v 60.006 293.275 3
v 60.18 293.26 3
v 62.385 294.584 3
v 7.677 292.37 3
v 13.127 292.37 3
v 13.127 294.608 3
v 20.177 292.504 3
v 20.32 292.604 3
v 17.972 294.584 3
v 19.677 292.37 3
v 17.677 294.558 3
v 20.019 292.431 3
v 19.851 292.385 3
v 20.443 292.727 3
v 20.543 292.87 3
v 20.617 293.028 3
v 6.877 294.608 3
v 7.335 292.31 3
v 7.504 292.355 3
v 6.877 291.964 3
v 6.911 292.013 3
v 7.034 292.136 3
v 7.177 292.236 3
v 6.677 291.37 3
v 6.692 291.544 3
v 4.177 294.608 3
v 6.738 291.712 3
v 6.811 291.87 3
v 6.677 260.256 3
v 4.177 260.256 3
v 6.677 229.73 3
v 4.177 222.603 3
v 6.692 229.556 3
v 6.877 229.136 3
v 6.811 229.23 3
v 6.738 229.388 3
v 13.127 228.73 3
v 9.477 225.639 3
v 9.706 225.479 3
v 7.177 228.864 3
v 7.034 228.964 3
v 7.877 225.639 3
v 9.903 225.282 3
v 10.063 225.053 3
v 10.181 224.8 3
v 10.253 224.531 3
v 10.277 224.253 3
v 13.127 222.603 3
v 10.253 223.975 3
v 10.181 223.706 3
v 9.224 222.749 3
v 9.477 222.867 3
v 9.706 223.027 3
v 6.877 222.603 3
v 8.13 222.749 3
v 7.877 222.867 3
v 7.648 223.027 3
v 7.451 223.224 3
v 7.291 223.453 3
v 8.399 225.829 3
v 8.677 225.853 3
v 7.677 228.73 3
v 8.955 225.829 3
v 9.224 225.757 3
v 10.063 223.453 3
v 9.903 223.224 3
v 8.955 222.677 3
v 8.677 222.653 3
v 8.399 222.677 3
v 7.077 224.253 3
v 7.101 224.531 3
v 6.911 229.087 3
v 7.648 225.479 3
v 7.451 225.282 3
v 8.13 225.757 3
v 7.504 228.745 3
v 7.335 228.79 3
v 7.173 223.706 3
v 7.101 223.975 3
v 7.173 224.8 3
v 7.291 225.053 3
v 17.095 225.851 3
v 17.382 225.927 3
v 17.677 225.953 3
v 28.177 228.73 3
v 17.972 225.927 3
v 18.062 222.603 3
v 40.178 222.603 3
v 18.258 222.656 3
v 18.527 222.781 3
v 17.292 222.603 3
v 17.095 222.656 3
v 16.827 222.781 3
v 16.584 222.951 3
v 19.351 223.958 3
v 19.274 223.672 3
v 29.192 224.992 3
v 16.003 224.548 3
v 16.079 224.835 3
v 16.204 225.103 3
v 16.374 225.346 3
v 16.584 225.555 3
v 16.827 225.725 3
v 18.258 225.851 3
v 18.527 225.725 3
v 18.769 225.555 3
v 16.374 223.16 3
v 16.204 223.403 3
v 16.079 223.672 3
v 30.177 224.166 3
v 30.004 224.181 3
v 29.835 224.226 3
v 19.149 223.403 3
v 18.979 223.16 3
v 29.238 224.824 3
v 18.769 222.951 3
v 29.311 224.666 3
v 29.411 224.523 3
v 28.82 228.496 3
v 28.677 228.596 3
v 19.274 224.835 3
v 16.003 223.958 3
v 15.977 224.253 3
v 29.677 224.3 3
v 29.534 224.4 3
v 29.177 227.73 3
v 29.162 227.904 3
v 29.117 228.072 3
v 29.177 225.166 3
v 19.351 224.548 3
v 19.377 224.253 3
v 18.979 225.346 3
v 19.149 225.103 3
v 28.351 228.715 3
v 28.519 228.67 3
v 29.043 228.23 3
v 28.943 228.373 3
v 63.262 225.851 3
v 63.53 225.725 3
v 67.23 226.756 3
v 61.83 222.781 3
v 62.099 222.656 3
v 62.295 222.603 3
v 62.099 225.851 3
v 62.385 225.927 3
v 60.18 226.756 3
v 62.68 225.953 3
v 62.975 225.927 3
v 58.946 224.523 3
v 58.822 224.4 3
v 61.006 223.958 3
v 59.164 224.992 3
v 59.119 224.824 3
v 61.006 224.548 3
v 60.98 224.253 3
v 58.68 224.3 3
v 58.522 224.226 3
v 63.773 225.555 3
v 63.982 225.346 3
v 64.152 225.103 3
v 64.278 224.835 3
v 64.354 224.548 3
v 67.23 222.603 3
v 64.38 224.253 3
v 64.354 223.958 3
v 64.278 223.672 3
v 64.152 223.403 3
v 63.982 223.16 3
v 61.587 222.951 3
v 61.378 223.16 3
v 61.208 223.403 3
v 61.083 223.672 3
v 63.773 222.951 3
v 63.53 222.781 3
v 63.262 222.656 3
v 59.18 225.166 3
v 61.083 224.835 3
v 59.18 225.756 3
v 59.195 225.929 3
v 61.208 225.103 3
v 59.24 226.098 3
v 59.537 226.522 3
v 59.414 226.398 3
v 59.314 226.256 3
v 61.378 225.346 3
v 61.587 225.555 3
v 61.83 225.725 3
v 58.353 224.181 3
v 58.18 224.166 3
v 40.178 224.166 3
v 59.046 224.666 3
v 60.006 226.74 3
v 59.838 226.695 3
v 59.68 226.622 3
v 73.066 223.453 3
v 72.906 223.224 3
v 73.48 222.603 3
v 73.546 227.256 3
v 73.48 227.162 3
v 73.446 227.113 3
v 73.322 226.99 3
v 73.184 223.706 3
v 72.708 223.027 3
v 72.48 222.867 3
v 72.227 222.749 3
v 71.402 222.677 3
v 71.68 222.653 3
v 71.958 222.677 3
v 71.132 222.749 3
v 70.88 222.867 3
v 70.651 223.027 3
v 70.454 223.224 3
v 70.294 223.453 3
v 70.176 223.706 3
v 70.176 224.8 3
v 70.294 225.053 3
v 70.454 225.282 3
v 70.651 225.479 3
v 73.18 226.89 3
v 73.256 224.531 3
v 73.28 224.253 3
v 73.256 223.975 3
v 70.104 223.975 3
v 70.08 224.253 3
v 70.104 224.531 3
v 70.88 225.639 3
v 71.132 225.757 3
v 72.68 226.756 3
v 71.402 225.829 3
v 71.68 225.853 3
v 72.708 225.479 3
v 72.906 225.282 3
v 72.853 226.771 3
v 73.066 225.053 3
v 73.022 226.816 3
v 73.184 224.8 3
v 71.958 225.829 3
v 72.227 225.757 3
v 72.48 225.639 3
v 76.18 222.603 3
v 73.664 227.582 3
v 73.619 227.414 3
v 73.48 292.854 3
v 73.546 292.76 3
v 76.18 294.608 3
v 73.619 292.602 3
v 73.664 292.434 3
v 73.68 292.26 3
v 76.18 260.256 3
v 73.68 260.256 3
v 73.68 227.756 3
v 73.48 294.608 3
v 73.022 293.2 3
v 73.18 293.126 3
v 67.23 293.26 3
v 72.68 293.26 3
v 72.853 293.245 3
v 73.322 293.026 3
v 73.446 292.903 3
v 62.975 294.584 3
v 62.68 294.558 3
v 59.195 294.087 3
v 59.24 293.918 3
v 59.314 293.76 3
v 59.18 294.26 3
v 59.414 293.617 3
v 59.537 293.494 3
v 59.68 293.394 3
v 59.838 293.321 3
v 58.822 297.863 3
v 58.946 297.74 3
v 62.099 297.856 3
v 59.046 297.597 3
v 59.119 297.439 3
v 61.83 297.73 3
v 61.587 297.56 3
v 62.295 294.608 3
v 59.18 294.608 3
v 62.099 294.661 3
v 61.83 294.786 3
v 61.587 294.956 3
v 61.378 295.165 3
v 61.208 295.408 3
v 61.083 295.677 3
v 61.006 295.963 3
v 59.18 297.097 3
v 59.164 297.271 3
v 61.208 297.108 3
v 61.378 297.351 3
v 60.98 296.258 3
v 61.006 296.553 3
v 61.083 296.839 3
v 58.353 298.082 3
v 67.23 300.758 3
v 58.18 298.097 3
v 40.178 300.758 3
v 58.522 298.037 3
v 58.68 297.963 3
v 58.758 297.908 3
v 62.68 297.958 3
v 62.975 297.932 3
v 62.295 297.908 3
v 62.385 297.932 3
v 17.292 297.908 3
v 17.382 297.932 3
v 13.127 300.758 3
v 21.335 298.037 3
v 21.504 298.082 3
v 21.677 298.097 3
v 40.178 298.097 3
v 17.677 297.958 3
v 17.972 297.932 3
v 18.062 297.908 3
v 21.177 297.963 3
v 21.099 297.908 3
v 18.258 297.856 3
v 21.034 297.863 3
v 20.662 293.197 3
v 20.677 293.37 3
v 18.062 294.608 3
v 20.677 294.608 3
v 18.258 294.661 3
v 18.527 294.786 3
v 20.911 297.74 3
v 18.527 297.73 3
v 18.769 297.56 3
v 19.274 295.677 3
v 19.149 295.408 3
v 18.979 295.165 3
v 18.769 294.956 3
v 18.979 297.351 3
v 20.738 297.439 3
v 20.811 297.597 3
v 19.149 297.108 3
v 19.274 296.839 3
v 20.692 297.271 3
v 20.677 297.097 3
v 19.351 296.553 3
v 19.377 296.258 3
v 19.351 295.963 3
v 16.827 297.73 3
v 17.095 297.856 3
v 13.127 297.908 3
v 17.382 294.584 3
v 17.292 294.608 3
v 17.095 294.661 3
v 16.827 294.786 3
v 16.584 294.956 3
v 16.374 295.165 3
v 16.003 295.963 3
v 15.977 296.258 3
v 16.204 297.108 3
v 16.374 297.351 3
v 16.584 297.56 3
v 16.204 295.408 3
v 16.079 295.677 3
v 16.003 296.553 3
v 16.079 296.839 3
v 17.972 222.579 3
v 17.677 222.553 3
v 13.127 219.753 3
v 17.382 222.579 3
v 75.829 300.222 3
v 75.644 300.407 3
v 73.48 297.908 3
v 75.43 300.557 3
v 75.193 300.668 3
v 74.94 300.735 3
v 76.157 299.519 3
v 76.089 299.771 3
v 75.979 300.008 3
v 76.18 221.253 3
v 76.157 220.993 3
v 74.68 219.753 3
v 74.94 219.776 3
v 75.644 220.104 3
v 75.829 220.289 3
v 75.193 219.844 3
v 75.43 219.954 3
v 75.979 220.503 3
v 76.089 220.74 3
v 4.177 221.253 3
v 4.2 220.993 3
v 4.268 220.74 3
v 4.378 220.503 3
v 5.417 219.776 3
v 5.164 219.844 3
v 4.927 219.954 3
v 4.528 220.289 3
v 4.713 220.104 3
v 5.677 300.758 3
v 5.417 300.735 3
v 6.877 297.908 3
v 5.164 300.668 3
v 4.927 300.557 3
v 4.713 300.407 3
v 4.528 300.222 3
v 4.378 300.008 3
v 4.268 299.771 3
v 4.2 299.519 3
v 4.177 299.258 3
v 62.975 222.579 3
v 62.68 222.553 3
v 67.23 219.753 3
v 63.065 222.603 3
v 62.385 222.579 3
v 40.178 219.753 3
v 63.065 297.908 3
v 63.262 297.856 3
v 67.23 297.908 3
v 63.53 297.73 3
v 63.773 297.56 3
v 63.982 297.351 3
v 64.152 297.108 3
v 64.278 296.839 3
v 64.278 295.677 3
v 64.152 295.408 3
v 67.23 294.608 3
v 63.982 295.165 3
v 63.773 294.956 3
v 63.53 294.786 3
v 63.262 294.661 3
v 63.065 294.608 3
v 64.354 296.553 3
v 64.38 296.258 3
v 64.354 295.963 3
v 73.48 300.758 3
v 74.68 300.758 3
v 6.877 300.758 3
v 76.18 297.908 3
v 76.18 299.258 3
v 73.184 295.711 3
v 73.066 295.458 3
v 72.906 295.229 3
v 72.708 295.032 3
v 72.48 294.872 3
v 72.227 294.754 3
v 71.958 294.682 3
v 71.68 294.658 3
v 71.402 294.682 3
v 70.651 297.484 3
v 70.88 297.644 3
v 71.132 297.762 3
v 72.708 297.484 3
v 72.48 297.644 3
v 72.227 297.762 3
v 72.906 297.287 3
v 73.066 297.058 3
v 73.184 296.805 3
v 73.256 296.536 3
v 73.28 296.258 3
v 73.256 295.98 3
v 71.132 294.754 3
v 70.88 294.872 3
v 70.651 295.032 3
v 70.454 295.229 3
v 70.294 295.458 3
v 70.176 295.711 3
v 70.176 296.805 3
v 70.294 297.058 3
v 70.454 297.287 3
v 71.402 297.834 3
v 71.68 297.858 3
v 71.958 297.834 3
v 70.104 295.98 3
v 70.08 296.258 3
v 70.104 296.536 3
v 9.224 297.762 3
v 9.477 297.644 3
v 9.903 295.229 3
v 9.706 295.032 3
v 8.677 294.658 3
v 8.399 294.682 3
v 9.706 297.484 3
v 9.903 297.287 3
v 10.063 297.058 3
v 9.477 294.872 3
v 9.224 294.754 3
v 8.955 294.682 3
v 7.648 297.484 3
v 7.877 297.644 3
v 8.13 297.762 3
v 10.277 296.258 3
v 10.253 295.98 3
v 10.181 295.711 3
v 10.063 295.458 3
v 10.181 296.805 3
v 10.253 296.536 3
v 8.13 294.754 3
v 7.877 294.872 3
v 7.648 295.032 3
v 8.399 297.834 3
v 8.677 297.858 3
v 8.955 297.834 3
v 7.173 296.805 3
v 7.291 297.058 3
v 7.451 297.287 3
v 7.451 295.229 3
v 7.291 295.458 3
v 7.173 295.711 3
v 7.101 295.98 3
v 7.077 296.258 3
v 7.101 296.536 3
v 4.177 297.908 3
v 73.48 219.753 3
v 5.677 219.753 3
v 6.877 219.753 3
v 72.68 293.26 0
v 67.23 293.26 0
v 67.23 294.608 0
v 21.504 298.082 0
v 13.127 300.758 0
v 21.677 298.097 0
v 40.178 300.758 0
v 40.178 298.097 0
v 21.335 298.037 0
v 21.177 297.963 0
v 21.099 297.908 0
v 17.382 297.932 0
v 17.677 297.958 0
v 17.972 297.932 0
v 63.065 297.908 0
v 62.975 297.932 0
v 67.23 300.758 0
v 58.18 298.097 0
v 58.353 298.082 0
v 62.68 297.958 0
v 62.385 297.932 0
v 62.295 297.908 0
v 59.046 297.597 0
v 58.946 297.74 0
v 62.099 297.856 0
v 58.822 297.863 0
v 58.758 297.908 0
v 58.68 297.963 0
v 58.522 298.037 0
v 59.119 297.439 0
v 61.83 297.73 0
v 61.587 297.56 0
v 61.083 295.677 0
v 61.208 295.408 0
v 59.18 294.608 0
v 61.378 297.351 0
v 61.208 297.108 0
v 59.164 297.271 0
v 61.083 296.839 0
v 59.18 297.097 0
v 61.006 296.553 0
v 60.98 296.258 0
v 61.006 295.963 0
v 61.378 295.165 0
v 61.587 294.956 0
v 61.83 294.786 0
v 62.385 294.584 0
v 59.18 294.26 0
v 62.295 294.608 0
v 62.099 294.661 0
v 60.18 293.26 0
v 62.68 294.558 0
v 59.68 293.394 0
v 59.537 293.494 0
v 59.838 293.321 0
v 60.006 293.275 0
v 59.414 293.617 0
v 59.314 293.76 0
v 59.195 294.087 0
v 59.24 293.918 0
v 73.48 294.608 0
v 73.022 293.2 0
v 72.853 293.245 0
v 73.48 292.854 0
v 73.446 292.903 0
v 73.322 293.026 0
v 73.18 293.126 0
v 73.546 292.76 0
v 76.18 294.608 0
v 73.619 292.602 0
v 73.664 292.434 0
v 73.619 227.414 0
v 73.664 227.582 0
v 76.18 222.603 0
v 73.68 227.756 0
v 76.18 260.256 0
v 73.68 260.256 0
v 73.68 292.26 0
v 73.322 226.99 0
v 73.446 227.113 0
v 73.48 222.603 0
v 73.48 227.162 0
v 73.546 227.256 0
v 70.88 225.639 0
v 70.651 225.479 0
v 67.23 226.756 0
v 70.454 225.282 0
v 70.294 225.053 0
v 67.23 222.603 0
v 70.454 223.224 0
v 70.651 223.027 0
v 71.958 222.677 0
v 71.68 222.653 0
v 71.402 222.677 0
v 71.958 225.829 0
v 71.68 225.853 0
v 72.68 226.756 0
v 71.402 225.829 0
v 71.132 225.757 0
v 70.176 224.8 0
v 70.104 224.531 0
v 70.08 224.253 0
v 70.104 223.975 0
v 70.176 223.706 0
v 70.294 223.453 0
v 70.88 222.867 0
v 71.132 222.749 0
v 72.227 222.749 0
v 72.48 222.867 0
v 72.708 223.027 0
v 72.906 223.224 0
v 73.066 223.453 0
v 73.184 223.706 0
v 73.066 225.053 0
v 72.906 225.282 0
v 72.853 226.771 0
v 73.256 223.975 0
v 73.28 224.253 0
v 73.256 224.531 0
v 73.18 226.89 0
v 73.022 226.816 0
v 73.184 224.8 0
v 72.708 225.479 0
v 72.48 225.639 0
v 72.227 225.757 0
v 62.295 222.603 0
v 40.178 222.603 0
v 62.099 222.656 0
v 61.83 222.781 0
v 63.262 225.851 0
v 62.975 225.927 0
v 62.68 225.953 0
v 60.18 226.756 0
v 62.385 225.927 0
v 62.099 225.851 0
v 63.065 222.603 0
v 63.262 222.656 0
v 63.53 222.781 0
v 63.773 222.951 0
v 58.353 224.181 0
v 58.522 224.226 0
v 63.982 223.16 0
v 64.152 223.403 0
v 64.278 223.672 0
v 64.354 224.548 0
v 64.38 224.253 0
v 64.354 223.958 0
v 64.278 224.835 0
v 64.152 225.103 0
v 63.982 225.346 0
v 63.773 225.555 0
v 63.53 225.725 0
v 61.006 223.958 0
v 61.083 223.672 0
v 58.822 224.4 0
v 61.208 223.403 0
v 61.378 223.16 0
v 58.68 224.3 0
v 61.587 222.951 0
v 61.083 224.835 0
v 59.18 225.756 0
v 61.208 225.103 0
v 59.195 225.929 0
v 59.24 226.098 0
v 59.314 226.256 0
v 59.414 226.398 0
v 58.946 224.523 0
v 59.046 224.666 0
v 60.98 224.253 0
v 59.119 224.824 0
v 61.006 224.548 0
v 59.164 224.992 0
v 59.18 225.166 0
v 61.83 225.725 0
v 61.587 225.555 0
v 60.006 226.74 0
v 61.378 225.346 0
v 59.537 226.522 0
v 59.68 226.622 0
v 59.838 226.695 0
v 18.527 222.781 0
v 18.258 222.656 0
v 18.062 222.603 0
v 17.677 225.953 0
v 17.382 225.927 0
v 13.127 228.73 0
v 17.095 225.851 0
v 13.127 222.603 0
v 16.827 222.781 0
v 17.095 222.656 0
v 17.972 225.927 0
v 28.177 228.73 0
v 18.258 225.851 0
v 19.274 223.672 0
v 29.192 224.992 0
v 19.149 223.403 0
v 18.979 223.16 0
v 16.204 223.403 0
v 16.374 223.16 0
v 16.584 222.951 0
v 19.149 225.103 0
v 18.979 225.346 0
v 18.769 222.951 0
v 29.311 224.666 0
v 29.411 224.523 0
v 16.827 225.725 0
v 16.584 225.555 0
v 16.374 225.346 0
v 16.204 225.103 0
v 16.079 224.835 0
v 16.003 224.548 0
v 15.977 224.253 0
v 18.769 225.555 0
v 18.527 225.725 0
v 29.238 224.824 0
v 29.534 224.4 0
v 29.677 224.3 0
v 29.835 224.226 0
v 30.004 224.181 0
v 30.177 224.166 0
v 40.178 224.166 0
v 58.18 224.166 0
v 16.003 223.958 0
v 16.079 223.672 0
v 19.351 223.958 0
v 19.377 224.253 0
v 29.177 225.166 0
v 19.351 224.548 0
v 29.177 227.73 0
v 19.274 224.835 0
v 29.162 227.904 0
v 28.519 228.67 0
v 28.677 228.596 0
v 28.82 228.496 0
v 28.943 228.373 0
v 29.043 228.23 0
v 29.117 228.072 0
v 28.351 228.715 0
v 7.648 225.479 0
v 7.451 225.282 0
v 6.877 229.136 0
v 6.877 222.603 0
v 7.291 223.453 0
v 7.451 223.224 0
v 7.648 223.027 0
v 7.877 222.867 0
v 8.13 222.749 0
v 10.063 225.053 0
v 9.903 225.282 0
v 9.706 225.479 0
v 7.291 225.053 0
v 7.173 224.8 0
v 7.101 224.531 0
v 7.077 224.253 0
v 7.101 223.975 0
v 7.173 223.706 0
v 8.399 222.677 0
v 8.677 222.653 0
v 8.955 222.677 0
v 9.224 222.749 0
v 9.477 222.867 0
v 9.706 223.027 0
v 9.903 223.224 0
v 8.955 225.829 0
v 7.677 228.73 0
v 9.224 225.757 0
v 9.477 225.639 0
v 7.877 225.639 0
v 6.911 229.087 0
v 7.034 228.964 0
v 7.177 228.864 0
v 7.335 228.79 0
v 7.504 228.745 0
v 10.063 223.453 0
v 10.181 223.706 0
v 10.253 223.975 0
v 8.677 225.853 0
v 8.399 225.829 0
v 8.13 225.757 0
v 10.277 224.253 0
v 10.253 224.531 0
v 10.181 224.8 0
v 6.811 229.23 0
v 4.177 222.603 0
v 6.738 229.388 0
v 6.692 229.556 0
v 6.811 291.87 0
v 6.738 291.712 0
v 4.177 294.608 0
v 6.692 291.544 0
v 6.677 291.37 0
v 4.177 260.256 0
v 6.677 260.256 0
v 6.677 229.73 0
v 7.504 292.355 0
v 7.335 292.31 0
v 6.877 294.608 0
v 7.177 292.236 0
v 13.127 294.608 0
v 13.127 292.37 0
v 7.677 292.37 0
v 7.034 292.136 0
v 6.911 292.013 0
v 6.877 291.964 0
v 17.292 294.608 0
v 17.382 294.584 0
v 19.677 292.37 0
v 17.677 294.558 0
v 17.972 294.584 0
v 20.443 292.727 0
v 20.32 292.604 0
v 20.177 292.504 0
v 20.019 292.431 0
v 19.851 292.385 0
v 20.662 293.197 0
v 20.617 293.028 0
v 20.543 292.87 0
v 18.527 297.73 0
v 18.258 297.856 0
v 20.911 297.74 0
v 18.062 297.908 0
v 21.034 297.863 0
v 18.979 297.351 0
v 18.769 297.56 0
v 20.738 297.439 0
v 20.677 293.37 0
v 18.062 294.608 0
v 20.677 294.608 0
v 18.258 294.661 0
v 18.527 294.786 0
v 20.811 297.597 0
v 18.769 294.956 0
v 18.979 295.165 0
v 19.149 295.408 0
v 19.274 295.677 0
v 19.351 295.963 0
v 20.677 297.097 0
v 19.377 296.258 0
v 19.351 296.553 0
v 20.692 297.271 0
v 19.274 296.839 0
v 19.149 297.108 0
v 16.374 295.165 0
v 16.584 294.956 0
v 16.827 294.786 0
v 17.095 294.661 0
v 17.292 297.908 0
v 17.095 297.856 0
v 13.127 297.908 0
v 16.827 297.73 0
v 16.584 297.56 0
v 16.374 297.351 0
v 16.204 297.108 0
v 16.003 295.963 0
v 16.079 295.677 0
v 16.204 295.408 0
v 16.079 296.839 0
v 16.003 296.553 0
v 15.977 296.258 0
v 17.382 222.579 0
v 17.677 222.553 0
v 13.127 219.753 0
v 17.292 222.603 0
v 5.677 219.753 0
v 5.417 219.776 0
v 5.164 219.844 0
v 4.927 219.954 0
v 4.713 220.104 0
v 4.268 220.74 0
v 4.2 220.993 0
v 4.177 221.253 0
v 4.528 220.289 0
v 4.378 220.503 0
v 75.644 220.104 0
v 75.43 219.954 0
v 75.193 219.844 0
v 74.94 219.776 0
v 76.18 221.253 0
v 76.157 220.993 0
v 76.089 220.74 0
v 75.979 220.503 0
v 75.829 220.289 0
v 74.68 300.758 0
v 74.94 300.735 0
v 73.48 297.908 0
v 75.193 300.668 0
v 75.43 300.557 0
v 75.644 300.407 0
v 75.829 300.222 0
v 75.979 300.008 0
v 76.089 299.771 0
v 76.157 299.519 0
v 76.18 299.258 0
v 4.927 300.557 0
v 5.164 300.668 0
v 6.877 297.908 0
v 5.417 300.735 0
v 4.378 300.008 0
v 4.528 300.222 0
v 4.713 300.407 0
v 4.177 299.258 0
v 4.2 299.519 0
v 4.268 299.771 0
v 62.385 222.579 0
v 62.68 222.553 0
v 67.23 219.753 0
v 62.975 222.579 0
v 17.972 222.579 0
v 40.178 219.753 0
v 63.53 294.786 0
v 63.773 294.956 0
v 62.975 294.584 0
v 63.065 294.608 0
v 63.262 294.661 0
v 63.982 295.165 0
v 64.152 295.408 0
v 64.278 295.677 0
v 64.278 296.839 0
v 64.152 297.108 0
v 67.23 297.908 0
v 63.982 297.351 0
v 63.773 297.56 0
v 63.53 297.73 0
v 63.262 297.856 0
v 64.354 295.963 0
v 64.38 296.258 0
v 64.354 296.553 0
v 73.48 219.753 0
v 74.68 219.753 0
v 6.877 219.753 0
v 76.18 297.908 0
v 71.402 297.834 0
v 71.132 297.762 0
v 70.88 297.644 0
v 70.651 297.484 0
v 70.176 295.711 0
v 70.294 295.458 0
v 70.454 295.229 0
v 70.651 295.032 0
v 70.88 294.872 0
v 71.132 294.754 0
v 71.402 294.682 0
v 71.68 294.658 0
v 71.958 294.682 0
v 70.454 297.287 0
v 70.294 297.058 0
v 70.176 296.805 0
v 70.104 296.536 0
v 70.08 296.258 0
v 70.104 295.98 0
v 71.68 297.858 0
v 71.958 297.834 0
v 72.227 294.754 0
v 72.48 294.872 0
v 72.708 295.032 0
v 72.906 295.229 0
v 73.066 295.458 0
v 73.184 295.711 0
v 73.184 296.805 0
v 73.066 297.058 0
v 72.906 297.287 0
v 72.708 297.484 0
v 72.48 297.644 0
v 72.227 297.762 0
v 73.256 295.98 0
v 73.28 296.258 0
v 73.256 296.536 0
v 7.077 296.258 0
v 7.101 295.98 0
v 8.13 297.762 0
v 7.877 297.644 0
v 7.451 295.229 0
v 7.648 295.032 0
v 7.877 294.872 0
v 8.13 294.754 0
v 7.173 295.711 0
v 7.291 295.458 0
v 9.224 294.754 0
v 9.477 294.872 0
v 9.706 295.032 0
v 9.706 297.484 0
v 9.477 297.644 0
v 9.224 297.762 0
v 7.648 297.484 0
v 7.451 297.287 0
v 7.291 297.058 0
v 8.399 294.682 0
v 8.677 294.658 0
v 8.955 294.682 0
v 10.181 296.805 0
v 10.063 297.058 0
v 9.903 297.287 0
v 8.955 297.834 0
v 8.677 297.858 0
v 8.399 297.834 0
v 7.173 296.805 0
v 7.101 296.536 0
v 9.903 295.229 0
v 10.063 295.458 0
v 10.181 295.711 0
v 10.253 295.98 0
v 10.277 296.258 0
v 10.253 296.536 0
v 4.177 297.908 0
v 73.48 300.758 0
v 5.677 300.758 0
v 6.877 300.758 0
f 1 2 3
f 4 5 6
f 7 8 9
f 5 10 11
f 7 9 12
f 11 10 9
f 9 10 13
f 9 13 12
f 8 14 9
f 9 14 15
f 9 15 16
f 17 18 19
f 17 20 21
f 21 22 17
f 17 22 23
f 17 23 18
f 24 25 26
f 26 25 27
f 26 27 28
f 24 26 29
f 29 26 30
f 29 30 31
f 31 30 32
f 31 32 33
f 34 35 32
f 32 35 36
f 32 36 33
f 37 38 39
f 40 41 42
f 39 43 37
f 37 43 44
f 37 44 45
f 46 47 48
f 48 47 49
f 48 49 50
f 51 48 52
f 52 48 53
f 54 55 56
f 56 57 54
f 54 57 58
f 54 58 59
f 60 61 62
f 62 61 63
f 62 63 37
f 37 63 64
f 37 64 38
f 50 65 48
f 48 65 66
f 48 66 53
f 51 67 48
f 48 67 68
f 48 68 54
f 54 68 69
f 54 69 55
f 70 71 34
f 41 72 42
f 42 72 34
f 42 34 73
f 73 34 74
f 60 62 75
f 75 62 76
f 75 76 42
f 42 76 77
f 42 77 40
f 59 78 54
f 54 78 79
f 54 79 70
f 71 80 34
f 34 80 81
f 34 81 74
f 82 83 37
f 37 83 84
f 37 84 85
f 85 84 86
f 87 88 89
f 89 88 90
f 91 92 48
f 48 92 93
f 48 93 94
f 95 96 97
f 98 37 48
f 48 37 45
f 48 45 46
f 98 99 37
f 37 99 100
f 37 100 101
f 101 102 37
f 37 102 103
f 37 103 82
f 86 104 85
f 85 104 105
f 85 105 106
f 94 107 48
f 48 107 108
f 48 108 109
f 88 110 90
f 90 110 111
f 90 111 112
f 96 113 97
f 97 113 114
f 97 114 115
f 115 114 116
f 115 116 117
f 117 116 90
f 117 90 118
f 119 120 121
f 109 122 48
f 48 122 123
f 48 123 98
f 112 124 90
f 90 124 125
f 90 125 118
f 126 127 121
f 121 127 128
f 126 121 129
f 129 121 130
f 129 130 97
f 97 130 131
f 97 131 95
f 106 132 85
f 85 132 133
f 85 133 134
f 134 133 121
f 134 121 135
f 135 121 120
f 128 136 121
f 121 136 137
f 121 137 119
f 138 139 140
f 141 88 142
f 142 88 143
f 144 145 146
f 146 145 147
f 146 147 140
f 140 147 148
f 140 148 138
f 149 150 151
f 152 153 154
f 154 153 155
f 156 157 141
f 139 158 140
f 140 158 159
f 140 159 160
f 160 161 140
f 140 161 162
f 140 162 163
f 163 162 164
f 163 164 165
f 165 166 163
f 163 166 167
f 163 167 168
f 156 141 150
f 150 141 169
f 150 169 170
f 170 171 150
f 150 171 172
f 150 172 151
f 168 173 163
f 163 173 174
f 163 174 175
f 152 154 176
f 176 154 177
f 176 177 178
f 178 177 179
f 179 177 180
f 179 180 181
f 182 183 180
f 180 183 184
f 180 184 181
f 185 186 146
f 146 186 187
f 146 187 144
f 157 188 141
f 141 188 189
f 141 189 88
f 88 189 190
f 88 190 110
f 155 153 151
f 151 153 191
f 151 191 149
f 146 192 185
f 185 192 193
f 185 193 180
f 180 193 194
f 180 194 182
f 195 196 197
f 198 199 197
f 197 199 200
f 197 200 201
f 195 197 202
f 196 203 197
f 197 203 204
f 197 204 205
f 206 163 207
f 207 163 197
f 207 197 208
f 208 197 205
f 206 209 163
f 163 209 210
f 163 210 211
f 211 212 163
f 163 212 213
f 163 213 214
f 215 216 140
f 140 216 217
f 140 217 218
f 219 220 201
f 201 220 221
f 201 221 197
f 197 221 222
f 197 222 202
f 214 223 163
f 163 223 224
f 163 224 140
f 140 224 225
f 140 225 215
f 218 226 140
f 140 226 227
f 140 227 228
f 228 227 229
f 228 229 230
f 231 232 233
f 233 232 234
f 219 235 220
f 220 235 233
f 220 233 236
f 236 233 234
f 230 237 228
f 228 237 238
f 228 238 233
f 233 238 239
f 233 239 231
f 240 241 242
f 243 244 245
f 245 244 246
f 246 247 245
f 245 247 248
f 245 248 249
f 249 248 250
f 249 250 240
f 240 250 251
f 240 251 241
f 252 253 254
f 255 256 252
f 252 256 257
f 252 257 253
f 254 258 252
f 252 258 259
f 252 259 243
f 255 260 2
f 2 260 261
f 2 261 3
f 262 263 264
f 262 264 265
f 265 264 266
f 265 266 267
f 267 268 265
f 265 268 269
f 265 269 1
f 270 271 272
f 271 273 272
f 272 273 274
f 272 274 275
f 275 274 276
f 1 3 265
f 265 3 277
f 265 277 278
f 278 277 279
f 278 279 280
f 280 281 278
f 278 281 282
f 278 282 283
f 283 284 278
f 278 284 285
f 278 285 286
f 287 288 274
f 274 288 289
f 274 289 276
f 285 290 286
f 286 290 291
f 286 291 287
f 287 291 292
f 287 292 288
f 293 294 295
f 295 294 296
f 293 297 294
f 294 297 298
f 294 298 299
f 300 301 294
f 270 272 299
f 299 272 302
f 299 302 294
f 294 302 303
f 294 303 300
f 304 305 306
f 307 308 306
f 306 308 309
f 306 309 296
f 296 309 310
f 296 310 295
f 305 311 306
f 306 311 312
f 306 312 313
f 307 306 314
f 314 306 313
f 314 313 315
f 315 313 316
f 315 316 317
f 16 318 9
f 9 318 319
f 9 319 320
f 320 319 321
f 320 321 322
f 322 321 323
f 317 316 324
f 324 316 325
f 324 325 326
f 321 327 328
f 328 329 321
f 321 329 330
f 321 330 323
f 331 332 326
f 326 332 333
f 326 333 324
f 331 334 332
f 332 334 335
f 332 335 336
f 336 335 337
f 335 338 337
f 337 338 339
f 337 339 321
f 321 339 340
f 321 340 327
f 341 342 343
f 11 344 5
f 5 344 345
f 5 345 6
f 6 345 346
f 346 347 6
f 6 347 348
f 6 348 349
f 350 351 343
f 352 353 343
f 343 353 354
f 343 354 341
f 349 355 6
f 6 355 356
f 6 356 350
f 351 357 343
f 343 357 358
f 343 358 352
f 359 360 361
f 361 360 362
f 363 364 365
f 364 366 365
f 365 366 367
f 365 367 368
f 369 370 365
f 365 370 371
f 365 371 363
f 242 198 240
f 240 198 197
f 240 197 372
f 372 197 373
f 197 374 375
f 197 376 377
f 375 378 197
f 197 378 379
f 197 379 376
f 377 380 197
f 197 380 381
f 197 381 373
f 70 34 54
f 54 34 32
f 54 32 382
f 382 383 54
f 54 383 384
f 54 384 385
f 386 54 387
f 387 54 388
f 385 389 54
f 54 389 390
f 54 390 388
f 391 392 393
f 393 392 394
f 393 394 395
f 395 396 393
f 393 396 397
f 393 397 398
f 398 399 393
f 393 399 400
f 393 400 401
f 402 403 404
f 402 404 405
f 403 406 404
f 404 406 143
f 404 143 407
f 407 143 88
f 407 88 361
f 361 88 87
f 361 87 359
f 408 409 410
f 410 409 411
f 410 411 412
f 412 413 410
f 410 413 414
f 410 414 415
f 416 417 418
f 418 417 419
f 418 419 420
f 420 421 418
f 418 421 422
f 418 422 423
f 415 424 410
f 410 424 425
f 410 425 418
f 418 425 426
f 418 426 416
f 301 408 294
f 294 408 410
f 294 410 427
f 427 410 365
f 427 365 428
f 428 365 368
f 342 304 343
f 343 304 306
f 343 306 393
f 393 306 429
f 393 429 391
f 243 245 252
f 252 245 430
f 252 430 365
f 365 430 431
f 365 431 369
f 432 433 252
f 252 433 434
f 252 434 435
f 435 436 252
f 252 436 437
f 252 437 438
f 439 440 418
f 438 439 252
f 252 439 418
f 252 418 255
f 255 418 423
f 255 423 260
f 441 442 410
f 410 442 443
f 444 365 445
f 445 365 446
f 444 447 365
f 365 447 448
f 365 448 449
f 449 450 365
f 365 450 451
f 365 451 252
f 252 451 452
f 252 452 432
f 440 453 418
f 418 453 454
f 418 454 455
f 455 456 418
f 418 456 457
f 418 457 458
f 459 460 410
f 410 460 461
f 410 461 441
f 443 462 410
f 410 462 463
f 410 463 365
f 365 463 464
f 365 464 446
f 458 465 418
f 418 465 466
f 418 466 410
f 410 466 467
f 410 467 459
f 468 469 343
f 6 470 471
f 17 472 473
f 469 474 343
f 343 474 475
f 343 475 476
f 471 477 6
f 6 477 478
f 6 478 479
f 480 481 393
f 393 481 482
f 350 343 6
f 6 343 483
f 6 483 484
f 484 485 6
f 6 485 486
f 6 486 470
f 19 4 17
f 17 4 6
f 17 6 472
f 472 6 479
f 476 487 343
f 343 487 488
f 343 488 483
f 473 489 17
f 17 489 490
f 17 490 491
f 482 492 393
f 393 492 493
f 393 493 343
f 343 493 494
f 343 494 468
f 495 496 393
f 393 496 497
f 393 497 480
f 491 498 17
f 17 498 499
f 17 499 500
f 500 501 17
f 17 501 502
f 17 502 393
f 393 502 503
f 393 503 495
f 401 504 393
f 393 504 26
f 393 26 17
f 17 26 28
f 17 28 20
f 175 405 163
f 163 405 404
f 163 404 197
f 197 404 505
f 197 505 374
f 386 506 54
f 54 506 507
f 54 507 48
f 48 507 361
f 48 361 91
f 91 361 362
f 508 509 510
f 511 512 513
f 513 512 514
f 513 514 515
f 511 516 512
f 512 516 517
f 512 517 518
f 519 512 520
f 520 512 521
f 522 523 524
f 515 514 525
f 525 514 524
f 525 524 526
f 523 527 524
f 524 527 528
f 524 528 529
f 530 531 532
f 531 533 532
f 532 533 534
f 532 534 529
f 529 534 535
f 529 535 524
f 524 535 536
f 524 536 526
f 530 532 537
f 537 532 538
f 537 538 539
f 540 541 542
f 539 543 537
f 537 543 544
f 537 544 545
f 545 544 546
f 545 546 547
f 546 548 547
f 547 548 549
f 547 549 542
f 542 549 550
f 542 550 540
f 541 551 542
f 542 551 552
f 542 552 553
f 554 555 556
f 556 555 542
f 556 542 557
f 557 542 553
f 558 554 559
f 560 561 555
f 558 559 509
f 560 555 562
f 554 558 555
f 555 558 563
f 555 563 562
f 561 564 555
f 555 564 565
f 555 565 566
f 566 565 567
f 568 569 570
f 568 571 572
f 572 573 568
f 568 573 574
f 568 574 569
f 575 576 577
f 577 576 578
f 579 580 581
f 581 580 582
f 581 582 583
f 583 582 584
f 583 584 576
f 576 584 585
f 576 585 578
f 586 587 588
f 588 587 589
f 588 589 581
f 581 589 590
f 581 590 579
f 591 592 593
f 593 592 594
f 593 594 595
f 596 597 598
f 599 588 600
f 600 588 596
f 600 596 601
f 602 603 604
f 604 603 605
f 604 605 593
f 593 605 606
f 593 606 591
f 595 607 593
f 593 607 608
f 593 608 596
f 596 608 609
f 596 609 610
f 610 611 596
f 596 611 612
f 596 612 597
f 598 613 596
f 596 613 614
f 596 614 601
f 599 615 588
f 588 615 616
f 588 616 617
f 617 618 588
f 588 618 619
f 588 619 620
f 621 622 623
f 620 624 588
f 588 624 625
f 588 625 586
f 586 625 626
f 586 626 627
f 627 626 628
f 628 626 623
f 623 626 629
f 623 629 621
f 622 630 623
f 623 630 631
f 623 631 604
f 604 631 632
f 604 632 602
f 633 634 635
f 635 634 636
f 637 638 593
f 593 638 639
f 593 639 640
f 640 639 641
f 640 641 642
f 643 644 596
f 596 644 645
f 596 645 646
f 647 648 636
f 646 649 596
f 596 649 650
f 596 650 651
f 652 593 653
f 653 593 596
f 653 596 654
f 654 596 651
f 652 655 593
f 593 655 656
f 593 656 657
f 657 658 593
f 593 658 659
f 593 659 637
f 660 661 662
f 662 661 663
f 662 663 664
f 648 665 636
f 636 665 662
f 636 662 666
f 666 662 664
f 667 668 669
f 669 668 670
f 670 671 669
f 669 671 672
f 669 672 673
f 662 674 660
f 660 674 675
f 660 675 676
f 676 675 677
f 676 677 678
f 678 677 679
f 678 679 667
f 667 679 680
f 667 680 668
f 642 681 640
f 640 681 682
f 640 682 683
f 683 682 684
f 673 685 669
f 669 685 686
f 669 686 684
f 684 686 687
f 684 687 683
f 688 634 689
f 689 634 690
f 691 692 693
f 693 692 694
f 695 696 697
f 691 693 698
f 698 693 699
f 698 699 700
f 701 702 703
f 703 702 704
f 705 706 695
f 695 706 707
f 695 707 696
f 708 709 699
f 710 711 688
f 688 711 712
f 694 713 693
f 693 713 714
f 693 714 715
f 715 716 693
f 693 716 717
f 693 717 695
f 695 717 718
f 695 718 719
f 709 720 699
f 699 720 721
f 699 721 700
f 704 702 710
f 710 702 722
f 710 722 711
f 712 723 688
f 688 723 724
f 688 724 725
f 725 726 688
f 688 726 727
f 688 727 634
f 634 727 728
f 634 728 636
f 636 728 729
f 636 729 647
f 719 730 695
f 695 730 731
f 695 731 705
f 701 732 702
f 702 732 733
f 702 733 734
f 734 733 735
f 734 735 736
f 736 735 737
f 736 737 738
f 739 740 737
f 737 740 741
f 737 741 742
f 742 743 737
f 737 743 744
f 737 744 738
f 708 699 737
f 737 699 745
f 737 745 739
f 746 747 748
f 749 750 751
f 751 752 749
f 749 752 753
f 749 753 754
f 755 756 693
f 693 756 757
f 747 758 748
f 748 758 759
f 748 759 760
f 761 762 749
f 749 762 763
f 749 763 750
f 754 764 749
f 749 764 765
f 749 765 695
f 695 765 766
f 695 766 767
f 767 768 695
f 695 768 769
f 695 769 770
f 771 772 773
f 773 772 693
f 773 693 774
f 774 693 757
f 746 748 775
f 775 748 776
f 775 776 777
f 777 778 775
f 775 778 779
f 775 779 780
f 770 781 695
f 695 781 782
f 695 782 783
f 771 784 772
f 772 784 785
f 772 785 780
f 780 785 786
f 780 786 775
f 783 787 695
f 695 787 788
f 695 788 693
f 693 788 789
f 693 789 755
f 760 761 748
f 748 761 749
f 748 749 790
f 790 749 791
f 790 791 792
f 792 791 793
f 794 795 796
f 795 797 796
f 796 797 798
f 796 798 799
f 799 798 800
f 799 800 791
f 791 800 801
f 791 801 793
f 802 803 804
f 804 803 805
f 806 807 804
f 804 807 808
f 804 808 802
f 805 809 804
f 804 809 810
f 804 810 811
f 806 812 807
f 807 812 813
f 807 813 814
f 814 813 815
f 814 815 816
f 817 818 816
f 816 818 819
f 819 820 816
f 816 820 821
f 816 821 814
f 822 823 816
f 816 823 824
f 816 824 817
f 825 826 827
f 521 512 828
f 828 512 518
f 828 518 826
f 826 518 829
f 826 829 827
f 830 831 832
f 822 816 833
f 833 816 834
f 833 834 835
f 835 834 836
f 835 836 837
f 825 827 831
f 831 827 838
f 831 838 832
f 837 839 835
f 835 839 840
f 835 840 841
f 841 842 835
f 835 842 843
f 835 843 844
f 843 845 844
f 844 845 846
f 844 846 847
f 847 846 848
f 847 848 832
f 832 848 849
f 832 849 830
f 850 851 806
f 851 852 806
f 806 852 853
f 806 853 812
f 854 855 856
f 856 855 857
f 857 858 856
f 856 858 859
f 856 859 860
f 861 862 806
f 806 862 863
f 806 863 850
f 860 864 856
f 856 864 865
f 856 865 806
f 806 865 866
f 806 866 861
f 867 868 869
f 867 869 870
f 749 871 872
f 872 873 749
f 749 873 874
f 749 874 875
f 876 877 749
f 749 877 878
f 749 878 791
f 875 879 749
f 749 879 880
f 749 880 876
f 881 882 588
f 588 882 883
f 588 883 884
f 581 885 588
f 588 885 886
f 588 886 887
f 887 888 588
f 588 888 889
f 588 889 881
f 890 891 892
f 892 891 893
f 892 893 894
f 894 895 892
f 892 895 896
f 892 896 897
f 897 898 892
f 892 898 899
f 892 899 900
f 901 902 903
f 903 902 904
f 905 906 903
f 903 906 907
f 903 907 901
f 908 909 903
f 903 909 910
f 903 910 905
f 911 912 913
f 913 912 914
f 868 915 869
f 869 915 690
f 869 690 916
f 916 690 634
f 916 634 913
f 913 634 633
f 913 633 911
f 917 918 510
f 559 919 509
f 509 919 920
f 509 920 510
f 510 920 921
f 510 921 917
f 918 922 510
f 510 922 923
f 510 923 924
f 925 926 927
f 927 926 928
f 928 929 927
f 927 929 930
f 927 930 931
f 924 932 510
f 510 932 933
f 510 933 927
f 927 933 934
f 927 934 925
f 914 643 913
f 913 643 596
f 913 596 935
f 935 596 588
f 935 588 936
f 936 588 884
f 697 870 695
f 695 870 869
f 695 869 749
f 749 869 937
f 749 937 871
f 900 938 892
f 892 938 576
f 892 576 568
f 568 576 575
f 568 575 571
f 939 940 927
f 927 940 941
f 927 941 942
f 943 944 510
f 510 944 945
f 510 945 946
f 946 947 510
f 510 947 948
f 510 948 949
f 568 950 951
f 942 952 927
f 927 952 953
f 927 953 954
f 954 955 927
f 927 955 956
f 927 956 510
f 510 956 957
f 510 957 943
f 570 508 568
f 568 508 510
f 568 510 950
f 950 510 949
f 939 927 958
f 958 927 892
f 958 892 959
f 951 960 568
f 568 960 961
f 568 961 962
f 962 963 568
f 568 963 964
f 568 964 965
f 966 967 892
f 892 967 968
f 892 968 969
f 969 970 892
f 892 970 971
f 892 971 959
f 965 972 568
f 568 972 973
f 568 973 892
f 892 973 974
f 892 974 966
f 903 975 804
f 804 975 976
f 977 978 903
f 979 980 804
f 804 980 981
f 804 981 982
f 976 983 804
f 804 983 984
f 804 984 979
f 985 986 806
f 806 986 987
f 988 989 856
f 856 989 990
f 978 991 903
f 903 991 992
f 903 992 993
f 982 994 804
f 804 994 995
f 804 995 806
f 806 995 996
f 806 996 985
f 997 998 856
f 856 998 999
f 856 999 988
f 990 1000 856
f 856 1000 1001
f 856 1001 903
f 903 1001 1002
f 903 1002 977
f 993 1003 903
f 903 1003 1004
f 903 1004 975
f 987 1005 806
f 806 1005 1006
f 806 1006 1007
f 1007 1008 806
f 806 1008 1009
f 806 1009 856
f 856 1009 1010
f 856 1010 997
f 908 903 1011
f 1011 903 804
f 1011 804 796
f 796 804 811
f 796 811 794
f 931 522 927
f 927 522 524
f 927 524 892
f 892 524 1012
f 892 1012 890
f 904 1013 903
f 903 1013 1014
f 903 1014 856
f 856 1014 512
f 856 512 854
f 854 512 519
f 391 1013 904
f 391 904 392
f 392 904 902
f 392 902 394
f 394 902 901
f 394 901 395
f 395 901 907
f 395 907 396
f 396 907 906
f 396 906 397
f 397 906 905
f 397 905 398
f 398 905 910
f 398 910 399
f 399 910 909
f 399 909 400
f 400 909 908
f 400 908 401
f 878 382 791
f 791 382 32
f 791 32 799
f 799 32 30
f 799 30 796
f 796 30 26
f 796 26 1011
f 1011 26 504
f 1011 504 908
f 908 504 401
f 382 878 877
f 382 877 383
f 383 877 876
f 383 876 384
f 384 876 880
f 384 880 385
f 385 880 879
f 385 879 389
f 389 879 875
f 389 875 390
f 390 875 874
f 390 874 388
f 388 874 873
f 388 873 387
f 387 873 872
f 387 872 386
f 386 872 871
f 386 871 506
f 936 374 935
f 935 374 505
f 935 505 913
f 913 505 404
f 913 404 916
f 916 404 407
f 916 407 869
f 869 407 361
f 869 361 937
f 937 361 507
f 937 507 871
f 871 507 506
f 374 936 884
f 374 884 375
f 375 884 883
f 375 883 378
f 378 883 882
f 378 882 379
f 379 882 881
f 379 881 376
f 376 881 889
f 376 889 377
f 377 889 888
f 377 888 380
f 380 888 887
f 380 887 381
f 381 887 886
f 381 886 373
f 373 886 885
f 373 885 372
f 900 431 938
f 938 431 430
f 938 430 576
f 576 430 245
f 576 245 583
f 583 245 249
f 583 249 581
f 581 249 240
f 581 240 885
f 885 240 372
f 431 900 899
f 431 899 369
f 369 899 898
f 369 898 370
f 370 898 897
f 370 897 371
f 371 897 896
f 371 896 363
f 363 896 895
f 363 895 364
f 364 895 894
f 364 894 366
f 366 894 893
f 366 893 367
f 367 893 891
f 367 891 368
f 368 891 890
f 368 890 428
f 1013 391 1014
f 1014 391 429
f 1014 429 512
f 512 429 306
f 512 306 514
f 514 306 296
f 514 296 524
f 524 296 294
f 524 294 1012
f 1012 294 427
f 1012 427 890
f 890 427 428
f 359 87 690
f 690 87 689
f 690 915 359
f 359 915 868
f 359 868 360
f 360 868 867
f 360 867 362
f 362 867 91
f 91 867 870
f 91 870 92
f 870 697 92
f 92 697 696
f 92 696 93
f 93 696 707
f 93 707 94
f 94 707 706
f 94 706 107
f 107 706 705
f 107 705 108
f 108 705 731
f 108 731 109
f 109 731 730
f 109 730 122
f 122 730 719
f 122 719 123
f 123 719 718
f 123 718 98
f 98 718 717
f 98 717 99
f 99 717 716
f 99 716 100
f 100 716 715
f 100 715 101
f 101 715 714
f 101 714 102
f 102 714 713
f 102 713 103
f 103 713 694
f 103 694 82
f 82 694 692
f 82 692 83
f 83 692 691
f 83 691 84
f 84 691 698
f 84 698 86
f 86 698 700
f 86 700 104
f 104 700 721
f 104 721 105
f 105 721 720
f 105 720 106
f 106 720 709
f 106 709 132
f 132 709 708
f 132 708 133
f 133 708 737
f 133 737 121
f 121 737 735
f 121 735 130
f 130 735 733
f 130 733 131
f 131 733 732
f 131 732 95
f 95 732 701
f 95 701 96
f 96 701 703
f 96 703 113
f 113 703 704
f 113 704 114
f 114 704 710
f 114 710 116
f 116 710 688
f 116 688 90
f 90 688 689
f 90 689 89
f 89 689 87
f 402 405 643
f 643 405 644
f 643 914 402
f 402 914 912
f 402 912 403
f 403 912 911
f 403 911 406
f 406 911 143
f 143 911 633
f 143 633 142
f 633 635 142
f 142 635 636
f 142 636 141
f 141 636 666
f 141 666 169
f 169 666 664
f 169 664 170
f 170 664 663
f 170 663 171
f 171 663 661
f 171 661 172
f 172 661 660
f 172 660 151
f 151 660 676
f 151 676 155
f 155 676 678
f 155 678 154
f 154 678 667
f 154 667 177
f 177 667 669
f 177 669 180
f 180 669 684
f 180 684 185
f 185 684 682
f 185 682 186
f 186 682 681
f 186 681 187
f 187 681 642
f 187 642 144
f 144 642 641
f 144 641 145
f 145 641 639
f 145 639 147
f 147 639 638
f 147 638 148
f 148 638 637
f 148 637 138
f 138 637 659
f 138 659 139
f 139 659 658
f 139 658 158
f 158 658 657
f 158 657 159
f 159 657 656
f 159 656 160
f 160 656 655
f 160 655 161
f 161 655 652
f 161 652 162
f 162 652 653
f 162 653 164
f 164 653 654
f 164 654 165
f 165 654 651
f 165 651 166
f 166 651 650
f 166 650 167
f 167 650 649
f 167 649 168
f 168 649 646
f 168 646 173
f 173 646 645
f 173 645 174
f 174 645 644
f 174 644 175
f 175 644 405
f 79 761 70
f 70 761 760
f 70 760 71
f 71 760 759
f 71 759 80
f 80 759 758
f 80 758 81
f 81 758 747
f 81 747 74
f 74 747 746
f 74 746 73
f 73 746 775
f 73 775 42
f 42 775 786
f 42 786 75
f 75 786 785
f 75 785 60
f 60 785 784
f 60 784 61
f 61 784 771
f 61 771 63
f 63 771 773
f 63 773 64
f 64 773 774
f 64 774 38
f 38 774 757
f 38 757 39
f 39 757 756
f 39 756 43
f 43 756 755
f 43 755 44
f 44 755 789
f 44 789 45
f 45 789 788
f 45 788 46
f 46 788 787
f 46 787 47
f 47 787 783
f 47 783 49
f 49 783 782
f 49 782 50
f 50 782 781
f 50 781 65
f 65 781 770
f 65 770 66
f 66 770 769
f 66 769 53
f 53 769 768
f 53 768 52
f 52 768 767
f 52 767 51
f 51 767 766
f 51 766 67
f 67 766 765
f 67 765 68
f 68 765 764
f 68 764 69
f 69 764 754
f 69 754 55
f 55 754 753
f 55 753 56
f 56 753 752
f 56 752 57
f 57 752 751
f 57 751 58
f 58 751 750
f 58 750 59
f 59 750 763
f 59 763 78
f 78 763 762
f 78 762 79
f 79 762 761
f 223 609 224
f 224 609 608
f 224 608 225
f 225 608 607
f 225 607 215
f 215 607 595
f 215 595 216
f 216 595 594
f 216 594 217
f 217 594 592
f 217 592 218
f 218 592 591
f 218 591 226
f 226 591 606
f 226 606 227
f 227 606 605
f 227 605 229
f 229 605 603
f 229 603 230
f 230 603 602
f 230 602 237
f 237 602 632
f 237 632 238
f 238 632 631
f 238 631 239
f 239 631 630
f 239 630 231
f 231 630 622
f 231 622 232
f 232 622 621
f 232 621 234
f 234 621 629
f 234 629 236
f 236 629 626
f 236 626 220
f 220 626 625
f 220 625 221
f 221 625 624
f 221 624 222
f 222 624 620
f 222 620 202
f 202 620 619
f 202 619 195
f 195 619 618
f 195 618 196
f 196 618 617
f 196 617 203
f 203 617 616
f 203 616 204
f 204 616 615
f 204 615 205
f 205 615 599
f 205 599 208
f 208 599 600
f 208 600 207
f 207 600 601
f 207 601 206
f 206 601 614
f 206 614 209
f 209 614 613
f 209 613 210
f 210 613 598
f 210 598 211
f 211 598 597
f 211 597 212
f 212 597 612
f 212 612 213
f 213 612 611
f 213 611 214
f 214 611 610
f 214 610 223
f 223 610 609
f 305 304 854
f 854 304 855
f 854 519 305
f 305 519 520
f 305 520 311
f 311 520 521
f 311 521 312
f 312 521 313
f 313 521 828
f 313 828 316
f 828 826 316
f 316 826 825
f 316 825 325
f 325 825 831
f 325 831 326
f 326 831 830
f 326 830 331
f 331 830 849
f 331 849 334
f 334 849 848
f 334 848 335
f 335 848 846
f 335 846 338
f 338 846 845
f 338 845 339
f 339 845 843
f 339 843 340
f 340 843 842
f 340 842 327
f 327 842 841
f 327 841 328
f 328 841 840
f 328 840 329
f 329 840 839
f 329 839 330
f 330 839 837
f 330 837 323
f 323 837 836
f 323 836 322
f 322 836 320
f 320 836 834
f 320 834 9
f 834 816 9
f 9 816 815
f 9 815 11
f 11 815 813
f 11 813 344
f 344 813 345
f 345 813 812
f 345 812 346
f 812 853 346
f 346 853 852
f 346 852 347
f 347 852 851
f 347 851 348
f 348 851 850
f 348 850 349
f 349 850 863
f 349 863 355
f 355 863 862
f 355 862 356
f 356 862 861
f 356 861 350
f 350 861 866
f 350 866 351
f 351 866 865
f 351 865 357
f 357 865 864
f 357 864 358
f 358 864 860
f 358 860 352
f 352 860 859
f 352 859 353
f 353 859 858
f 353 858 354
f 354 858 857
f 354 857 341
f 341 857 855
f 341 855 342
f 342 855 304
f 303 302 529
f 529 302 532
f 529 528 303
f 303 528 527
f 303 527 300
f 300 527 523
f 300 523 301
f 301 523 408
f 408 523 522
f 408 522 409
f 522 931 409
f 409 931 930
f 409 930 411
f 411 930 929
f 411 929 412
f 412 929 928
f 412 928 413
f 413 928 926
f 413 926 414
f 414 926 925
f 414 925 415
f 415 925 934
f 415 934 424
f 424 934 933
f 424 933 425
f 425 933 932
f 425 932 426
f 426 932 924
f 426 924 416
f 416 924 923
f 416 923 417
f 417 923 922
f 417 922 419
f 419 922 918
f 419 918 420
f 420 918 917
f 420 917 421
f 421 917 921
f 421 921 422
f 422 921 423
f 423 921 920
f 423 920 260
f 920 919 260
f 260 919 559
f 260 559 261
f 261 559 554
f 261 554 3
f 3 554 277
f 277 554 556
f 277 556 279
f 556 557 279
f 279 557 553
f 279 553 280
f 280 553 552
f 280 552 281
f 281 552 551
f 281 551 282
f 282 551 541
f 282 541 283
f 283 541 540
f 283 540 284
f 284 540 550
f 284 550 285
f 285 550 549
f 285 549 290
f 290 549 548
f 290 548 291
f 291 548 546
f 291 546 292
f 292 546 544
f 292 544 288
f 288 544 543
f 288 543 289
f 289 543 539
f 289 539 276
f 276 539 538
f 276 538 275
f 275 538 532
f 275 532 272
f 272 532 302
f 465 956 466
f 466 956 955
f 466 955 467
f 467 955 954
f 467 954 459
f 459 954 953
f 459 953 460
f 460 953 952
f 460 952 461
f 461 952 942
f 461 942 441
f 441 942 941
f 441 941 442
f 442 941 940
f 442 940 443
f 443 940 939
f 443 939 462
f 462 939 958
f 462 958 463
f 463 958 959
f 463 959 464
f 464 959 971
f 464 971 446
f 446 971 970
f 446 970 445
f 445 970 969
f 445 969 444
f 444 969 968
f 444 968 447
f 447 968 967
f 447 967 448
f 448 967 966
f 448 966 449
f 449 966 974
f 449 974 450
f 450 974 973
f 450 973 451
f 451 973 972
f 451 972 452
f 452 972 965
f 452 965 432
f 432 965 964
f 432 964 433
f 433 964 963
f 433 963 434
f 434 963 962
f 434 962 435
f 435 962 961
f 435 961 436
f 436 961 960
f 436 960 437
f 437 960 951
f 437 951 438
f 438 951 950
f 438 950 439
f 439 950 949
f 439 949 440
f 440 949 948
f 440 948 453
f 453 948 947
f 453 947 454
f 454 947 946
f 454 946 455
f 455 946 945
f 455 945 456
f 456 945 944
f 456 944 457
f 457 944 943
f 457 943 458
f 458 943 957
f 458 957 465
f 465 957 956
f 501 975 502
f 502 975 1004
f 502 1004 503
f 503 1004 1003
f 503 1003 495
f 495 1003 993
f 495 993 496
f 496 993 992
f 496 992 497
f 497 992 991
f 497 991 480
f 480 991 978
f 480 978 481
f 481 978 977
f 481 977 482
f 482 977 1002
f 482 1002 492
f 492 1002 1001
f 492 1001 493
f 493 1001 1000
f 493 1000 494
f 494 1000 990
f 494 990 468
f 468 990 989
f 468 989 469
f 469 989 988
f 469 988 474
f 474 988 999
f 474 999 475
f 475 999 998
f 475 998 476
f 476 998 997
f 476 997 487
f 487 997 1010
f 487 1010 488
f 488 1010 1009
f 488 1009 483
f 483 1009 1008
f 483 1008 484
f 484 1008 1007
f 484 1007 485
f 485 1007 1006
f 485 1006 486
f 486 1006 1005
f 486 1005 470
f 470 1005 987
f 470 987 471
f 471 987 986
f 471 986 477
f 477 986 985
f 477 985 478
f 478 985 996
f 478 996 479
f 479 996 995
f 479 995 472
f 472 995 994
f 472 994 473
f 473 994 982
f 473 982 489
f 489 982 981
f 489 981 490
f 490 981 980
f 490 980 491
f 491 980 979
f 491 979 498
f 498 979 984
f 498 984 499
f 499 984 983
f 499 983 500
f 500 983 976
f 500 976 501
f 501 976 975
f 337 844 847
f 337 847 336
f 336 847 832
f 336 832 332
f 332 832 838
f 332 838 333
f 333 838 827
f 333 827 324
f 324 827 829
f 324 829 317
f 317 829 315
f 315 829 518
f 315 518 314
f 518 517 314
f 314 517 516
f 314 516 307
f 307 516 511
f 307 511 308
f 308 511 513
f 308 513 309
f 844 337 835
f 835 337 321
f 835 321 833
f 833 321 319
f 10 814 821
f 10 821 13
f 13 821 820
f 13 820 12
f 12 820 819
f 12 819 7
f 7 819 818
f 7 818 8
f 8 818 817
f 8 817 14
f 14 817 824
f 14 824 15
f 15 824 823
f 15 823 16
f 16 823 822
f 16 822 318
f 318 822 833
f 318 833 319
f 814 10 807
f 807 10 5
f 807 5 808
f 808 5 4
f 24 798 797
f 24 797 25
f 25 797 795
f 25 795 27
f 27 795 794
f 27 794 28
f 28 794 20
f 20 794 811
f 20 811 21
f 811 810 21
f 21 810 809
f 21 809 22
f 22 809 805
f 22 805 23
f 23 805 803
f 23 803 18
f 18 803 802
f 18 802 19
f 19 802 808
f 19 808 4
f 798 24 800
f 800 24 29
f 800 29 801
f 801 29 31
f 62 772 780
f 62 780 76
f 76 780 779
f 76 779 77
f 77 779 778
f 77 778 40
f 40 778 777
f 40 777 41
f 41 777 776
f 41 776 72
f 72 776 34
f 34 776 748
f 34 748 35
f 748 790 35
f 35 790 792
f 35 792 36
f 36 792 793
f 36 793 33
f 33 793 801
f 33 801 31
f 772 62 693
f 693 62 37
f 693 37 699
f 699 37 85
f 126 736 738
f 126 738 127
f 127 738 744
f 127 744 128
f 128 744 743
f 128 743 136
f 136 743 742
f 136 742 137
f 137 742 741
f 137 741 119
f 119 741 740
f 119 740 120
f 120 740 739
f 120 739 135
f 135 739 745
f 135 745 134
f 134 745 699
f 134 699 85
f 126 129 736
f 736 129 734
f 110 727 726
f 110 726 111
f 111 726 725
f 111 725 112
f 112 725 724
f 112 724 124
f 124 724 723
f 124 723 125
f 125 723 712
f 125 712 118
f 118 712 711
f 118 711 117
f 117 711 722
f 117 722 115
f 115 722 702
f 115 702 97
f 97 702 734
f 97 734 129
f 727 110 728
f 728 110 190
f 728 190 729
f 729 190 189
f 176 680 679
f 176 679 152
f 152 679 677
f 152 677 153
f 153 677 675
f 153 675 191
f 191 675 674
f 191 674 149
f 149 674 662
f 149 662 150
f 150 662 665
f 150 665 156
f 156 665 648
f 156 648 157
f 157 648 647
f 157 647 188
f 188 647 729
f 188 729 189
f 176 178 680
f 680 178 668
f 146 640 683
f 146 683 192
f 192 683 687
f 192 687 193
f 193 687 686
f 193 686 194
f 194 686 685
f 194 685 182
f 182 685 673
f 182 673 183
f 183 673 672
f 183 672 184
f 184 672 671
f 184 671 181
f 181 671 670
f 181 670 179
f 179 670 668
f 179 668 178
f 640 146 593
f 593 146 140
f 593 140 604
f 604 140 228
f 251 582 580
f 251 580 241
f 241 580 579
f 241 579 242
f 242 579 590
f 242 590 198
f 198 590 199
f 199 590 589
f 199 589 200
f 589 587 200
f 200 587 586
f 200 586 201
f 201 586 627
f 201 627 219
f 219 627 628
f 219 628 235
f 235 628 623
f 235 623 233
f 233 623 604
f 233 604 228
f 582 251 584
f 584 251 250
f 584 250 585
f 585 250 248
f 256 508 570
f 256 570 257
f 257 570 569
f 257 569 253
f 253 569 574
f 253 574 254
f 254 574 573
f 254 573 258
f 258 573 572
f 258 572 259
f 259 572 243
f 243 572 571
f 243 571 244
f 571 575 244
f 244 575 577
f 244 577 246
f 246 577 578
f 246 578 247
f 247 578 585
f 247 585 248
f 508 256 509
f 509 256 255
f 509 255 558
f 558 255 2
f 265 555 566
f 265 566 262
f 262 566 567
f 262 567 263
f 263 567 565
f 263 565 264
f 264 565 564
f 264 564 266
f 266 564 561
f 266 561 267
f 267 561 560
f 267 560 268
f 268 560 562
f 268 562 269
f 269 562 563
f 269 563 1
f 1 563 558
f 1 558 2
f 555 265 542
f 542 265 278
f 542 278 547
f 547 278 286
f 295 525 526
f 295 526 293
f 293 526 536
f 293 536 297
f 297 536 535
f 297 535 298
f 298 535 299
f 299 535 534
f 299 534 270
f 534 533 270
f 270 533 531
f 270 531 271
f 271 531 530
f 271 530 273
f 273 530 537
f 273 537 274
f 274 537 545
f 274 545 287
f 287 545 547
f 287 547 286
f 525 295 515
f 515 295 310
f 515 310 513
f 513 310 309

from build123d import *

# Parameters (mm, degrees)
MODEL_R                 = 1.7
MODEL_R_2               = 1.600279216
SALIENTE_EXTRUIR1_DEPTH = 3


with BuildPart() as part:
    # Model → Saliente-Extruir1 (new body)
    with BuildSketch(Plane.XY):
        with BuildLine():
            Line((74.679802956, 300.758040435), (5.677398721, 300.758040435))
            ThreePointArc((5.677398721, 300.758040435), (4.61673855, 300.318700606), (4.177398721, 299.258040435))
            Line((4.177398721, 299.258040435), (4.177398721, 221.253430577))
            ThreePointArc((4.177398721, 221.253430577), (4.61673855, 220.192770405), (5.677398721, 219.753430577))
            Line((5.677398721, 219.753430577), (74.679802956, 219.753430577))
            ThreePointArc((74.679802956, 219.753430577), (75.740463127, 220.192770405), (76.179802956, 221.253430577))
            Line((76.179802956, 221.253430577), (76.179802956, 299.258040435))
            ThreePointArc((76.179802956, 299.258040435), (75.740463127, 300.318700606), (74.679802956, 300.758040435))
        make_face()
        with Locations((17.676729717, 224.253096075)):
            Circle(MODEL_R, mode=Mode.SUBTRACT)
        with Locations((62.680137458, 224.253096075)):
            Circle(MODEL_R, mode=Mode.SUBTRACT)
        with Locations((8.677064219, 224.253096075)):
            Circle(MODEL_R_2, mode=Mode.SUBTRACT)
        with Locations((71.679802956, 224.253096075)):
            Circle(MODEL_R_2, mode=Mode.SUBTRACT)
        with Locations((17.676729717, 296.258040435)):
            Circle(MODEL_R, mode=Mode.SUBTRACT)
        with Locations((62.680137458, 296.258040435)):
            Circle(MODEL_R, mode=Mode.SUBTRACT)
        with Locations((71.679802956, 296.258040435)):
            Circle(MODEL_R_2, mode=Mode.SUBTRACT)
        with Locations((8.677064219, 296.258040435)):
            Circle(MODEL_R_2, mode=Mode.SUBTRACT)
        with BuildLine():
            Line((73.679621744, 292.260238845), (73.679621744, 227.755628988))
            ThreePointArc((73.679621744, 227.755628988), (73.386728525, 227.048522207), (72.679621744, 226.755628988))
            Line((72.679621744, 226.755628988), (60.179621744, 226.755628988))
            ThreePointArc((60.179621744, 226.755628988), (59.472514963, 226.462735769), (59.179621744, 225.755628988))
            Line((59.179621744, 225.755628988), (59.179621744, 225.165628988))
            ThreePointArc((59.179621744, 225.165628988), (58.886728525, 224.458522207), (58.179621744, 224.165628988))
            Line((58.179621744, 224.165628988), (30.17721751, 224.165628988))
            ThreePointArc((30.17721751, 224.165628988), (29.470110728, 224.458522207), (29.17721751, 225.165628988))
            Line((29.17721751, 225.165628988), (29.17721751, 227.730037779))
            ThreePointArc((29.17721751, 227.730037779), (28.884324291, 228.43714456), (28.17721751, 228.730037779))
            Line((28.17721751, 228.730037779), (7.67721751, 228.730037779))
            ThreePointArc((7.67721751, 228.730037779), (6.970110728, 229.022930998), (6.67721751, 229.730037779))
            Line((6.67721751, 229.730037779), (6.67721751, 291.370238846))
            ThreePointArc((6.67721751, 291.370238846), (6.970110728, 292.077345627), (7.67721751, 292.370238846))
            Line((7.67721751, 292.370238846), (19.67721751, 292.370238846))
            ThreePointArc((19.67721751, 292.370238846), (20.384324291, 292.663132064), (20.67721751, 293.370238846))
            Line((20.67721751, 293.370238846), (20.67721751, 297.097066693))
            ThreePointArc((20.67721751, 297.097066693), (20.970110728, 297.804173474), (21.67721751, 298.097066693))
            Line((21.67721751, 298.097066693), (58.179621744, 298.097066693))
            ThreePointArc((58.179621744, 298.097066693), (58.886728525, 297.804173474), (59.179621744, 297.097066693))
            Line((59.179621744, 297.097066693), (59.179621744, 294.260238845))
            ThreePointArc((59.179621744, 294.260238845), (59.472514963, 293.553132064), (60.179621744, 293.260238845))
            Line((60.179621744, 293.260238845), (72.679621744, 293.260238845))
            ThreePointArc((72.679621744, 293.260238845), (73.386728525, 292.967345627), (73.679621744, 292.260238845))
        make_face(mode=Mode.SUBTRACT)
    extrude(amount=SALIENTE_EXTRUIR1_DEPTH)


solid = part.part
